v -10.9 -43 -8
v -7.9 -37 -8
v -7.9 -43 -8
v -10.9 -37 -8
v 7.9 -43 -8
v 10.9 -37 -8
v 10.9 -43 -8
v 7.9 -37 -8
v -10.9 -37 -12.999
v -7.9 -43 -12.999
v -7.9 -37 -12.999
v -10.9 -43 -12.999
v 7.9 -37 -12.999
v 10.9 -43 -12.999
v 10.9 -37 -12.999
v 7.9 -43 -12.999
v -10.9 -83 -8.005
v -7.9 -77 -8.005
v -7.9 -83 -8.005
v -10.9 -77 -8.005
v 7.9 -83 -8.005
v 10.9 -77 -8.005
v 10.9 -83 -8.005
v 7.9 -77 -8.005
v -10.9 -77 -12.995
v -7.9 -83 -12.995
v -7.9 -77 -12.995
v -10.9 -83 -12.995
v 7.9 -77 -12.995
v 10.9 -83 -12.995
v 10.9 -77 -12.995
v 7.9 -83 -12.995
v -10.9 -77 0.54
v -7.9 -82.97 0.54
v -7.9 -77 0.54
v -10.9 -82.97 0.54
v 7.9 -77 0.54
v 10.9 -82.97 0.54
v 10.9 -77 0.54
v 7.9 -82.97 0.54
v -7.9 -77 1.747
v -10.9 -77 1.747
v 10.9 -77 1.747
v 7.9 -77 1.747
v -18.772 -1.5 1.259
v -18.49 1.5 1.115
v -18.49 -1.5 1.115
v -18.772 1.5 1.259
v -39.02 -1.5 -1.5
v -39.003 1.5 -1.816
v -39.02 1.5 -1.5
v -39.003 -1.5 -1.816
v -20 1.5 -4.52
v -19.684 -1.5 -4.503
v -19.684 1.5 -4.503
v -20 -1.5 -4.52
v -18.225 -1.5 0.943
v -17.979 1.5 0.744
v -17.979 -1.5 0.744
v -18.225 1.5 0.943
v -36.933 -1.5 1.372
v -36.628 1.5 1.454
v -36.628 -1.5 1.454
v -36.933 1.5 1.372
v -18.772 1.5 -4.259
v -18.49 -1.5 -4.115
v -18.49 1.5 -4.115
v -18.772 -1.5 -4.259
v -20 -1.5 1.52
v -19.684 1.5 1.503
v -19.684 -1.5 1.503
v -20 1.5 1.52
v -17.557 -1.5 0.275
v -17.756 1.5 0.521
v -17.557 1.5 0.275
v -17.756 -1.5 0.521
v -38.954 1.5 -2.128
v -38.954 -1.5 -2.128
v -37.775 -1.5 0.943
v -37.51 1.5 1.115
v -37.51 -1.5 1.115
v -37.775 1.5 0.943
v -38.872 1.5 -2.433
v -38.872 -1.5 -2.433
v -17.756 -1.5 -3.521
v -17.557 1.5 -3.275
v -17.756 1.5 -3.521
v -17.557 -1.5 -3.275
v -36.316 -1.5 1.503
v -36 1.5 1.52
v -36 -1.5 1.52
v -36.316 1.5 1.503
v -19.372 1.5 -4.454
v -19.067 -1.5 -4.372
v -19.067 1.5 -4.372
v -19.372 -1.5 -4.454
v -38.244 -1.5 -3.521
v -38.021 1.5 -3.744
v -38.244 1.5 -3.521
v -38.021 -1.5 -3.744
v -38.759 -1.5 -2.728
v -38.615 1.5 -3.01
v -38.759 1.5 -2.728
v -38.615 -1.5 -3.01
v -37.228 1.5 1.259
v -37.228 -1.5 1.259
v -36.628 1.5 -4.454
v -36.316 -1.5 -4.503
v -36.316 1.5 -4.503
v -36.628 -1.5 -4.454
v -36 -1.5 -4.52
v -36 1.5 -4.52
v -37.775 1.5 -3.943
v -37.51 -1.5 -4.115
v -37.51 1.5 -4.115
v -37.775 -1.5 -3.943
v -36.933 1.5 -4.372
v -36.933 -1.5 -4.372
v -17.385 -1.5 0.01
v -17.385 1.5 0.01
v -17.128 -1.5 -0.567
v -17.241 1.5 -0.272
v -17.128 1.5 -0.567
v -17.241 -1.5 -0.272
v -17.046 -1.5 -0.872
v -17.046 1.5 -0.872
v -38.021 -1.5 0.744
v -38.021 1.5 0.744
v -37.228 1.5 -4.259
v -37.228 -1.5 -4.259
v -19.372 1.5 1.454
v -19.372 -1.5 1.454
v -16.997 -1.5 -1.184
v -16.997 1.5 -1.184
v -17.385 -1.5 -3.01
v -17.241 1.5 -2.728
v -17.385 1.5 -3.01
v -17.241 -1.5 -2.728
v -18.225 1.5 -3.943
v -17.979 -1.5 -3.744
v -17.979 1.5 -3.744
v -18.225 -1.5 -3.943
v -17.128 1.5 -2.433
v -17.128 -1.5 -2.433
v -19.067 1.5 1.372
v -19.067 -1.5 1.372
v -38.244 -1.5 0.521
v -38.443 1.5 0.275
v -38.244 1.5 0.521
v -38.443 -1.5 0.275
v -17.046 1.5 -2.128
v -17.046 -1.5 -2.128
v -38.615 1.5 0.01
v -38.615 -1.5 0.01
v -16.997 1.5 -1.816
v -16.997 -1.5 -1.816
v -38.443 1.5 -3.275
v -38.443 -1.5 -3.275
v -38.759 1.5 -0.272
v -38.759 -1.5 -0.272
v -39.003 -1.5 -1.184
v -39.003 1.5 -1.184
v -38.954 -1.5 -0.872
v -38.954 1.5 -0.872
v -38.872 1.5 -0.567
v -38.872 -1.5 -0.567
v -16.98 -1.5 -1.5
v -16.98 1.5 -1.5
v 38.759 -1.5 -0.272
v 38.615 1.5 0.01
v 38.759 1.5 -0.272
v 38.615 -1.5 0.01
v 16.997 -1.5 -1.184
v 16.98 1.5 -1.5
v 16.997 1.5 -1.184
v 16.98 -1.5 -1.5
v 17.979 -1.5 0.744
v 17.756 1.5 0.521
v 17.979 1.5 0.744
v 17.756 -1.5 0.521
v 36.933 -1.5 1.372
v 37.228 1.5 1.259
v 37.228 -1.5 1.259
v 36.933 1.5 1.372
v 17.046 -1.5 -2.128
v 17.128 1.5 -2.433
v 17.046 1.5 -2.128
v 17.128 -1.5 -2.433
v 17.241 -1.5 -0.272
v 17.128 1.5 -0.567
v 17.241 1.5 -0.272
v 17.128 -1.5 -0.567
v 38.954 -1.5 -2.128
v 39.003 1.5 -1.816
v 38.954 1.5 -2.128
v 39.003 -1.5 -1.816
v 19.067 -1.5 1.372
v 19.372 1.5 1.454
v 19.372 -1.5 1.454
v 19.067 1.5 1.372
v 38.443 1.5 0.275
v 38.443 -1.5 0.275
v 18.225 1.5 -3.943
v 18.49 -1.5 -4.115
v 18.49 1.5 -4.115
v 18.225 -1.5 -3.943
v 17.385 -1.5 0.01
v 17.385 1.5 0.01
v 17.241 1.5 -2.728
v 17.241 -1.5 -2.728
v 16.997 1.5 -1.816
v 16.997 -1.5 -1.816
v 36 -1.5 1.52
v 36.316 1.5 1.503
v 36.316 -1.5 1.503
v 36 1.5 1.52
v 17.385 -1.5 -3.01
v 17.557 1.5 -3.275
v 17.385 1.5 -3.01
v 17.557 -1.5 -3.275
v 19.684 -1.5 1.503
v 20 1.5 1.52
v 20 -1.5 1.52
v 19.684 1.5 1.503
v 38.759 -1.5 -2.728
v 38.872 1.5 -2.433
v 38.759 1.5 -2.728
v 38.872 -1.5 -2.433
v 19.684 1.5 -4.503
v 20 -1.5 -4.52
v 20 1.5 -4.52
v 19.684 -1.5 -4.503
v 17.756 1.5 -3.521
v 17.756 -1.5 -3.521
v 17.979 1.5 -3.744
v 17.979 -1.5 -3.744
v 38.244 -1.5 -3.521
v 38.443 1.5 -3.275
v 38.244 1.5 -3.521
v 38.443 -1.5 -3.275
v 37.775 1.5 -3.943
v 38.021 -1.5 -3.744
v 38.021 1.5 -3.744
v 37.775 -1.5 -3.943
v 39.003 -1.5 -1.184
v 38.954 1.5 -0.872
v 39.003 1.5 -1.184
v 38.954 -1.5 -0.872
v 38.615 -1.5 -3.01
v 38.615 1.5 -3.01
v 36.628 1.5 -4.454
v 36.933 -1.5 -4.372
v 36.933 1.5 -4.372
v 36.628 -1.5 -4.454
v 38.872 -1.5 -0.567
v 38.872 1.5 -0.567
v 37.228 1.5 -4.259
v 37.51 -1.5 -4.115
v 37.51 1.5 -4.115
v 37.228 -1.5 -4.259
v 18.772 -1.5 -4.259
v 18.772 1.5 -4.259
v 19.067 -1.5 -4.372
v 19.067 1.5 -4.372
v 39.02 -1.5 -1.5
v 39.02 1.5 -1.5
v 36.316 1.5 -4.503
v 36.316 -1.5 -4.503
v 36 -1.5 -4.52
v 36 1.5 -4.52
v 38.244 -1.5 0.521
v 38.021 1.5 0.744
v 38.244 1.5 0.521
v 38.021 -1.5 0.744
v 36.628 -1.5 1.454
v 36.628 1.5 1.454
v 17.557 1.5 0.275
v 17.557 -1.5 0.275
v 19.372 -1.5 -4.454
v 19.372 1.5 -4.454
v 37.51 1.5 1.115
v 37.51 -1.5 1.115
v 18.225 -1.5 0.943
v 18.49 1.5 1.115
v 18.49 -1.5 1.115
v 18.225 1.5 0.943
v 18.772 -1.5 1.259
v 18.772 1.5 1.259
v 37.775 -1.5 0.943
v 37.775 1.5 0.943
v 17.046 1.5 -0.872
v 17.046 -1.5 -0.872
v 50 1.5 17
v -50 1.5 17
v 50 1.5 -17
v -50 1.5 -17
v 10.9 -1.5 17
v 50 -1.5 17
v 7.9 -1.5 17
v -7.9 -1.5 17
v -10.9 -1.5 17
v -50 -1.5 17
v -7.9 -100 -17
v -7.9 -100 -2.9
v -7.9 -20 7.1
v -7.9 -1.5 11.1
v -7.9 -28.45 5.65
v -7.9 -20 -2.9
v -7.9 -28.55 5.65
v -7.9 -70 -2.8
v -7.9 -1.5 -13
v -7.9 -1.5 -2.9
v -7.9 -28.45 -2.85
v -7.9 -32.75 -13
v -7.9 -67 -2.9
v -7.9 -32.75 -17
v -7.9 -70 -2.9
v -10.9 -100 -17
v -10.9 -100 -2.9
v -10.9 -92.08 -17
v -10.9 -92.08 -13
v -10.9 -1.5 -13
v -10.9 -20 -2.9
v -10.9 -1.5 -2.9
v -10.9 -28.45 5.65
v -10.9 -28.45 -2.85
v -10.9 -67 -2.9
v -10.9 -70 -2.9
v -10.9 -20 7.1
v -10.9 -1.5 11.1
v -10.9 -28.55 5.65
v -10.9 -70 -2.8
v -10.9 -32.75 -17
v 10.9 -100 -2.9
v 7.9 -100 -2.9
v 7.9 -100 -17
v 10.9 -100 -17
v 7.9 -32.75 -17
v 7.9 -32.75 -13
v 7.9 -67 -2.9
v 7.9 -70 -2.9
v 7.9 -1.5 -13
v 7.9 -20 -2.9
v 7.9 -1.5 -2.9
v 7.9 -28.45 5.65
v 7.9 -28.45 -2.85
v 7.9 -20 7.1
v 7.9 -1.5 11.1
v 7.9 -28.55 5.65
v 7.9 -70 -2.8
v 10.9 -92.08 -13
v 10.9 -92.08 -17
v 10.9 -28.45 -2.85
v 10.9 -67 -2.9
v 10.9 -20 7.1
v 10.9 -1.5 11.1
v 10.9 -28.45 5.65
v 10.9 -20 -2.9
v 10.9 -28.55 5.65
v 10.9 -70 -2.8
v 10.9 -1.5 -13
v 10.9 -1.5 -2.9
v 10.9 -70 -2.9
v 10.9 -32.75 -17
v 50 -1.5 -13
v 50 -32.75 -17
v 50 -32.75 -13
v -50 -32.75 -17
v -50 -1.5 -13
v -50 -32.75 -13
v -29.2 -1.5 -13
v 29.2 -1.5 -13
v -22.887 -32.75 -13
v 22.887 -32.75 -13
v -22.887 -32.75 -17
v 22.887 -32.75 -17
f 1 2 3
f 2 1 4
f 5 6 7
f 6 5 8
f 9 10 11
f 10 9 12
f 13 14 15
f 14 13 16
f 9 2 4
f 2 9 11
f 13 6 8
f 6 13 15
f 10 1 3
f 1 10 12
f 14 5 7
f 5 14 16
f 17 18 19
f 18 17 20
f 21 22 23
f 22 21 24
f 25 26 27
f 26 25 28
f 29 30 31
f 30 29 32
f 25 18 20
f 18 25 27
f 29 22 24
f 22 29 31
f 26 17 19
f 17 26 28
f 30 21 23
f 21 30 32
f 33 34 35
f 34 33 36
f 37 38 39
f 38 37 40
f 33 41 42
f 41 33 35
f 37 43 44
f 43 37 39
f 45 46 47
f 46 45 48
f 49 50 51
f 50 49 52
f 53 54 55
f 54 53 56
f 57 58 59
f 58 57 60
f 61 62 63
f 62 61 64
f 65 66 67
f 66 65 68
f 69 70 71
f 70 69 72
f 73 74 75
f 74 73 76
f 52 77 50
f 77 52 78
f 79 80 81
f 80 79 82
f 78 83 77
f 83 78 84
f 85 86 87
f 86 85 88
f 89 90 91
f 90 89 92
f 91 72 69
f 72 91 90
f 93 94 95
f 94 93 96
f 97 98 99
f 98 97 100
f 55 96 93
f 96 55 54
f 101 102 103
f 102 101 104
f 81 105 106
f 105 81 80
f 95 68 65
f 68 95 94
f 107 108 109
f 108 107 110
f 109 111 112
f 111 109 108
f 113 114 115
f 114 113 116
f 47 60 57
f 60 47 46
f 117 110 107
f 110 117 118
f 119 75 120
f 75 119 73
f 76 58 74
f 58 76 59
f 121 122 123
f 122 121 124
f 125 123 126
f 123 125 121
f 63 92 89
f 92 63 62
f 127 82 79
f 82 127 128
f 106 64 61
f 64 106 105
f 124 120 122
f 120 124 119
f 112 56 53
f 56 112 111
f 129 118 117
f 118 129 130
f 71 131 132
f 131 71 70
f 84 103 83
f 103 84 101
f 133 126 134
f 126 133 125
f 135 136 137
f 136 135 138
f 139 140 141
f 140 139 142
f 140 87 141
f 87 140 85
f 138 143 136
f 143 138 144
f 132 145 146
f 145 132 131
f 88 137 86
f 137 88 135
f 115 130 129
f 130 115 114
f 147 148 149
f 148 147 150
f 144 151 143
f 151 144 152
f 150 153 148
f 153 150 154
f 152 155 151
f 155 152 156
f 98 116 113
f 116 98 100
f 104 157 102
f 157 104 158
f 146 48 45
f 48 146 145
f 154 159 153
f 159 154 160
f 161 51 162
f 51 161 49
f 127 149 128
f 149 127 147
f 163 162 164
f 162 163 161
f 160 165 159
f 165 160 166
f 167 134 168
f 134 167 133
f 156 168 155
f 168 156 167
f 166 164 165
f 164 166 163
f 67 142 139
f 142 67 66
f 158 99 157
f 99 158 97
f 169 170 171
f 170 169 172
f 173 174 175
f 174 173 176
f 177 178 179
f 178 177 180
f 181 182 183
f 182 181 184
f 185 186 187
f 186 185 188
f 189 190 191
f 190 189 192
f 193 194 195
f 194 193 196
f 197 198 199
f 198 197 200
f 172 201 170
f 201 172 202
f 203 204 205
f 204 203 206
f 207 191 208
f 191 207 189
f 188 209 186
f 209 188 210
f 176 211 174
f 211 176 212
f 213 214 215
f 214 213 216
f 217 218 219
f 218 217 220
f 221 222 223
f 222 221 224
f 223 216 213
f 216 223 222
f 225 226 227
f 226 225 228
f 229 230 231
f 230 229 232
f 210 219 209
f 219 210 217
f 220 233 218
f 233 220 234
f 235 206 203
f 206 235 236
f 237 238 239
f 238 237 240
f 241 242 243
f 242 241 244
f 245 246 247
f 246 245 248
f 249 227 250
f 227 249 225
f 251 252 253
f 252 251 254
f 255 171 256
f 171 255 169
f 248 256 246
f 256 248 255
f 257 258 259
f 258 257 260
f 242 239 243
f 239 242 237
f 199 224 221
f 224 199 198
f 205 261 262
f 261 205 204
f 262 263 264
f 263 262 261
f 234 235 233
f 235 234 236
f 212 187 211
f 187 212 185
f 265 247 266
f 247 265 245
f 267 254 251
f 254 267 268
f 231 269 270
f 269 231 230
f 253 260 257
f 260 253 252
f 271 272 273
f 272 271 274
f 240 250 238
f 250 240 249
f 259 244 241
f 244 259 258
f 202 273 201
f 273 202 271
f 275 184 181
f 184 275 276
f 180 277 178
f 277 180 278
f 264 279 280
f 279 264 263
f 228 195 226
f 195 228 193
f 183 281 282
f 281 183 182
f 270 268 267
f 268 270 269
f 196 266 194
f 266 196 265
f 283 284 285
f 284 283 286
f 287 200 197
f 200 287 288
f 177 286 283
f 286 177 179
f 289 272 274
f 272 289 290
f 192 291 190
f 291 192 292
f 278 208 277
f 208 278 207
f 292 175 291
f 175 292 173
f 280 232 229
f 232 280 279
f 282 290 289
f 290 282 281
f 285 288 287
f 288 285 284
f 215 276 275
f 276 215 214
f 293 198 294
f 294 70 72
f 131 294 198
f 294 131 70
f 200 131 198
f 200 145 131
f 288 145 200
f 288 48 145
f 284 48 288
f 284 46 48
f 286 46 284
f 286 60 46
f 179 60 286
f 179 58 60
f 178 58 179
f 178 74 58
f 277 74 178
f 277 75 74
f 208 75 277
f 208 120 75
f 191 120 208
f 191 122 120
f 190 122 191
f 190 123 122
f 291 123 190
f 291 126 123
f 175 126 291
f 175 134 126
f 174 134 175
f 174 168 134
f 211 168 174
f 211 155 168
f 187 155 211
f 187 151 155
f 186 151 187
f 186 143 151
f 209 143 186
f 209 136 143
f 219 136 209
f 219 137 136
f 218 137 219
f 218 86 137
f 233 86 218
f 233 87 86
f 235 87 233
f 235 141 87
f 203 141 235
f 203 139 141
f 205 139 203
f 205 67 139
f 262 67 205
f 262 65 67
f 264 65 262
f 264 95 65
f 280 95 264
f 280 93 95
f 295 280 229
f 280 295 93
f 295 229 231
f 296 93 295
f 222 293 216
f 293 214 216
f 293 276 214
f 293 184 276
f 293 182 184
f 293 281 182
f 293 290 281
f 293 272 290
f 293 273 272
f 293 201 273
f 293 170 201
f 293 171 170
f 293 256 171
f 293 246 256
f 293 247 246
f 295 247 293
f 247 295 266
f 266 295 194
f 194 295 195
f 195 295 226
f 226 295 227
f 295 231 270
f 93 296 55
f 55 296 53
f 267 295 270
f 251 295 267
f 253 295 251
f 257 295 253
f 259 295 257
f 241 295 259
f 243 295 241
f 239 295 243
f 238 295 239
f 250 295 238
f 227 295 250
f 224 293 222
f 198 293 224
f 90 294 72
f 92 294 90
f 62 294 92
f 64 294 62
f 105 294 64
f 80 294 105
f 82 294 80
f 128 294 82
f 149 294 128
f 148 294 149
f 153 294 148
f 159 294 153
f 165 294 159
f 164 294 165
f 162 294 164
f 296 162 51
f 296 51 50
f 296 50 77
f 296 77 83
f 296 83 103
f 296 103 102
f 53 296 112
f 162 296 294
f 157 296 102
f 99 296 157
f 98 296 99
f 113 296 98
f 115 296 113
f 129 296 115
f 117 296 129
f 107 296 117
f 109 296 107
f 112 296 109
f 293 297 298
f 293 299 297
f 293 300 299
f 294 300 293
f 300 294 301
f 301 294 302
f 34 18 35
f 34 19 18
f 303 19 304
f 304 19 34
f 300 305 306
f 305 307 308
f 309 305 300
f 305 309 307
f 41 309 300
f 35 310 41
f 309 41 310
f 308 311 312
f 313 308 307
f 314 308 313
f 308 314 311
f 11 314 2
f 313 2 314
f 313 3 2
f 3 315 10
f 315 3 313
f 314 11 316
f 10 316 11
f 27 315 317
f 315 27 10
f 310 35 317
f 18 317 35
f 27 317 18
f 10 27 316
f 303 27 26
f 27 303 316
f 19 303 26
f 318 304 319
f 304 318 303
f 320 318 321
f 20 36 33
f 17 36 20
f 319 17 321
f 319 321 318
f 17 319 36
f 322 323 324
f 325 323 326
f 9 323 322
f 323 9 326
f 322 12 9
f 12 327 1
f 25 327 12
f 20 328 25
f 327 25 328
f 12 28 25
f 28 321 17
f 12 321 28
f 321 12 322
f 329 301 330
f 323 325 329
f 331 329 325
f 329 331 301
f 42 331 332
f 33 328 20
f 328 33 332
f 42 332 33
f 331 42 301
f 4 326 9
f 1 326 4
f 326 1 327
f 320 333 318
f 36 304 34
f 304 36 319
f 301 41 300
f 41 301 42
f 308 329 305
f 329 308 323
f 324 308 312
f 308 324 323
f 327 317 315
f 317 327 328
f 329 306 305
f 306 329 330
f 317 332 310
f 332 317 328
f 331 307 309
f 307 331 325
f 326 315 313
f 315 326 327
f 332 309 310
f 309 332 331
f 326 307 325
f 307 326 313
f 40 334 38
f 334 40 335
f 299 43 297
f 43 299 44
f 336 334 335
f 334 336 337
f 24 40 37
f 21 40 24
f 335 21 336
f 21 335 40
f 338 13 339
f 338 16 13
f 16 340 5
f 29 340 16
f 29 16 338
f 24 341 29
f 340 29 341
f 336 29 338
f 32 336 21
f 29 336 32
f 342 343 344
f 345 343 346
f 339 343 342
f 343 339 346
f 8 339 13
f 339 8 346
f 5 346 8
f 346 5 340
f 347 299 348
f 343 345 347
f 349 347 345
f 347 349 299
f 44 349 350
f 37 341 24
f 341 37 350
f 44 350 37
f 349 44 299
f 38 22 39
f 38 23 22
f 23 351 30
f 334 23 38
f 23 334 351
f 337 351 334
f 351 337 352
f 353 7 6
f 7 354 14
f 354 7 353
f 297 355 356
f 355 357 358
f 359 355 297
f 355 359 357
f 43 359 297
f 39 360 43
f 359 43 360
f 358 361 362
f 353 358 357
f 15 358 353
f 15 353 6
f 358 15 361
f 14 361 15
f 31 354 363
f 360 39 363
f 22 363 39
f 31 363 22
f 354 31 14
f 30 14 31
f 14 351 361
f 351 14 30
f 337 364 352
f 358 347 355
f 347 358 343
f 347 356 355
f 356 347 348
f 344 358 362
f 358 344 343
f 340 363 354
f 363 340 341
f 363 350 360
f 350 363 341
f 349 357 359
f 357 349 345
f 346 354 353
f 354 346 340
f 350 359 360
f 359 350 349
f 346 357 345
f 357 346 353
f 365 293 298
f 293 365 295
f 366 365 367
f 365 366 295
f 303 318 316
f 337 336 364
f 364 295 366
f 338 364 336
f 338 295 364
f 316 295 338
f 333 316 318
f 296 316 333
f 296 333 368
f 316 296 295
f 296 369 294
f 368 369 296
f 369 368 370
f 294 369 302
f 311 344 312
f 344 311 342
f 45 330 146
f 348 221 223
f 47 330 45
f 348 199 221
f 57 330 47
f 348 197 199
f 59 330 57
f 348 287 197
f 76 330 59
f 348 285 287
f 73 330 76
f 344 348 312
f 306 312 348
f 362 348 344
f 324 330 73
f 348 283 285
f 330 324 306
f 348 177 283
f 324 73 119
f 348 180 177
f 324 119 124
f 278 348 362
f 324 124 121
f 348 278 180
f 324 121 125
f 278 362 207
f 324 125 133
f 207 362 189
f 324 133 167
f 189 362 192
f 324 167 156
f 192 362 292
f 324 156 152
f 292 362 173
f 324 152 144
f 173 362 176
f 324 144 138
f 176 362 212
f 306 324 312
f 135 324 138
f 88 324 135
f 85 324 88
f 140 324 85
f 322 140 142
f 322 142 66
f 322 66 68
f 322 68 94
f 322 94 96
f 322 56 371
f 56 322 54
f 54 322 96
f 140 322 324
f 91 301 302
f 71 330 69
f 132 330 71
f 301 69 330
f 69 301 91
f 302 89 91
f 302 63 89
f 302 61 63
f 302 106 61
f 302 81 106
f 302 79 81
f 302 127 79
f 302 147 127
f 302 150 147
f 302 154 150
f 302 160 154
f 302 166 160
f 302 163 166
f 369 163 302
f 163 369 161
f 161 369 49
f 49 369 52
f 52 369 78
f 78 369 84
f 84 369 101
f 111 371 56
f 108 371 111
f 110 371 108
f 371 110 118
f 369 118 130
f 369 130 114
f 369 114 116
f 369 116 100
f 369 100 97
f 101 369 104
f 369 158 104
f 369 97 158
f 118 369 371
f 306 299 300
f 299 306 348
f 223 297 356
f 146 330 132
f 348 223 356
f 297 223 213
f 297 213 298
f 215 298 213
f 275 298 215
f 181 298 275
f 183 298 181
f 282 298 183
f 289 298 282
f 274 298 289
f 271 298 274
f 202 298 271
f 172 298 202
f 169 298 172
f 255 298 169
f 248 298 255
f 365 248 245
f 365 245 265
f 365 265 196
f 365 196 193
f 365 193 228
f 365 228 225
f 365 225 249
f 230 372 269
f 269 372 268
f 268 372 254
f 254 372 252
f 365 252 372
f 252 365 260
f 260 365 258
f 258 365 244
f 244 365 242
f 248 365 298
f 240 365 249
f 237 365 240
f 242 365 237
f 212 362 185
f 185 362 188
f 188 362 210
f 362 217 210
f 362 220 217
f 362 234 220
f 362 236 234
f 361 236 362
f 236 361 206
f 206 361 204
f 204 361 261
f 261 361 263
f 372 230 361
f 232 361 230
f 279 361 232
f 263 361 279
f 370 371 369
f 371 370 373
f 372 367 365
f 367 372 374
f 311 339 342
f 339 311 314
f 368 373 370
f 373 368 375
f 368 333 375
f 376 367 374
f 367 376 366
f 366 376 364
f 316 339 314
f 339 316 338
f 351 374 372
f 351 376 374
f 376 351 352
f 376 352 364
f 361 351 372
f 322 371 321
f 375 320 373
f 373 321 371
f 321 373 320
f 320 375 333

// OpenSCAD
difference(){
union(){
difference(){
union(){
//main back plate
cube([100,3,34], center=true);

//right structure bottom square
# translate([9.4,-50,-11.9])
cube([3,100,18], center=true);

//left structure bottom square
# translate([-9.4,-50,-11.9])
cube([3,100,18], center=true);


translate([0,-15.625,-15])
cube([100,34.25,4], center=true);
};

//base plate leveling/cut
translate([0,-15.625,-19])
cube([100,234.25,4], center=true);

};


//left structure upper triangle
# difference(){
//whole_triangle
hull(){
translate([-9.4,0,6.5])
cube([3,3,21], center=true);

translate([-9.4,-98.5,-3.4])
cube([3,3,1], center=true);
};

//hole_01
hull(){
translate([-9.4,0,4.1])
cube([6,3,14], center=true);

translate([-9.4,-18.5,2.1])
cube([6,3,10], center=true);
};

//hole_02
hull(){
translate([-9.4,-28.5,1.4])
cube([6,0.1,8.5], center=true);

translate([-9.4,-68.5,-2.85])
cube([6,3,0.1], center=true);
};

};



//right structure upper triangle
difference(){
//whole_triangle
hull(){
translate([9.4,0,6.5])
cube([3,3,21], center=true);

translate([9.4,-98.5,-3.4])
cube([3,3,1], center=true);
};

//hole_01
hull(){
translate([7.9,0,4.1])
cube([6,3,14], center=true);

translate([7.9,-18.5,2.1])
cube([6,3,10], center=true);
};

//hole_02
hull(){
translate([7.9,-28.5,1.4])
cube([6,0.1,8.5], center=true);

translate([7.9,-68.5,-2.85])
cube([6,3,0.1], center=true);
};

};


hull(){
    //rotated right
    translate([12.2,0,-6.60]){
    rotate([0,90,0])
    //right structure upper triangle
    difference(){
    //whole_triangle
    hull(){
    translate([7.9,0,6.5])
    cube([3,3,21], center=true);

    translate([7.9,-98.5,-3.4])
    cube([3,3,1], center=true);
    };

    //hole_01
    hull(){
    translate([7.9,0,4.1])
    cube([6,3,14], center=true);

    translate([7.9,-18.5,2.1])
    cube([6,3,10], center=true);
    };

    //hole_02
    hull(){
    translate([7.9,-28.5,1.4])
    cube([6,0.1,8.5], center=true);

    translate([7.9,-68.5,-2.85])
    cube([6,3,0.1], center=true);
    };

    };

    }
    ;
    //bottom part
    //rotated right
    translate([12.2,0,-7.6]){
        rotate([0,90,0])
            //right structure upper triangle
            difference(){
            //whole_triangle
            hull(){
            translate([7.9,0,6.5])
            cube([3,3,21], center=true);

            translate([7.9,-98.5,-3.4])
            cube([3,3,1], center=true);
            };

            //hole_01
            hull(){
            translate([7.9,0,4.1])
            cube([6,3,14], center=true);

            translate([7.9,-18.5,2.1])
            cube([6,3,10], center=true);
            };

            //hole_02
            hull(){
            translate([7.9,-28.5,1.4])
            cube([6,0.1,8.5], center=true);

            translate([7.9,-68.5,-2.85])
            cube([6,3,0.1], center=true);
            };

            };

    }
    ;
}
;


//left_structurer_bottom
hull(){

//upper part
union(){
//rotated left
translate([-12.2,0,-6.60]){
rotate([0,-90,0]){
//right structure upper triangle
difference(){
//whole_triangle
hull(){
translate([-7.9,0,6.5])
cube([3,3,21], center=true);

translate([-7.9,-98.5,-3.4])
cube([3,3,1], center=true);
};

//hole_01
hull(){
translate([-7.9,0,4.1])
cube([6,3,14], center=true);

translate([-7.9,-18.5,2.1])
cube([6,3,10], center=true);
};

//hole_02
hull(){
translate([-7.9,-28.5,1.4])
cube([6,0.1,8.5], center=true);

translate([-7.9,-68.5,-2.85])
cube([6,3,0.1], center=true);
};

};
};
};
};

//lower part
translate([0,0,-11.1]){
union(){
//rotated left
translate([-12.2,0,3.5]){
rotate([0,-90,0]){
//right structure upper triangle
difference(){
//whole_triangle
hull(){
translate([-7.9,0,6.5])
cube([3,3,21], center=true);

translate([-7.9,-98.5,-3.4])
cube([3,3,1], center=true);
};

//hole_01
hull(){
translate([-7.9,0,4.1])
cube([6,3,14], center=true);

translate([-7.9,-18.5,2.1])
cube([6,3,10], center=true);
};

//hole_02
hull(){
translate([-7.9,-28.5,1.4])
cube([6,0.1,8.5], center=true);

translate([-7.9,-68.5,-2.85])
cube([6,3,0.1], center=true);
};

};
};
};
};
};
}
;
};



//holes for fasteners
union(){
translate([0,-40,-10.5])
        cube([70,6,4.999],center=true);

translate([0,-80,-10.5])
        cube([70,6,4.99],center=true);

translate([0,-80,3.04])
        cube([70,6,4.999],center=true);

        
//left hole cutout
hull(){
translate([-36,50,-1.5])
rotate([90,0,0])
cylinder(100,3.02,3.02, $fn=60);

translate([-20,50,-1.5])
rotate([90,0,0])
cylinder(100,3.02,3.02, $fn=60);

}
;


//right hole cutout
hull(){
translate([36,50,-1.5])
rotate([90,0,0])
cylinder(100,3.02,3.02, $fn=60);

translate([20,50,-1.5])
rotate([90,0,0])
cylinder(100,3.02,3.02, $fn=60);

};
};

}
;


//# cube([15.8,100,20],center=true);
